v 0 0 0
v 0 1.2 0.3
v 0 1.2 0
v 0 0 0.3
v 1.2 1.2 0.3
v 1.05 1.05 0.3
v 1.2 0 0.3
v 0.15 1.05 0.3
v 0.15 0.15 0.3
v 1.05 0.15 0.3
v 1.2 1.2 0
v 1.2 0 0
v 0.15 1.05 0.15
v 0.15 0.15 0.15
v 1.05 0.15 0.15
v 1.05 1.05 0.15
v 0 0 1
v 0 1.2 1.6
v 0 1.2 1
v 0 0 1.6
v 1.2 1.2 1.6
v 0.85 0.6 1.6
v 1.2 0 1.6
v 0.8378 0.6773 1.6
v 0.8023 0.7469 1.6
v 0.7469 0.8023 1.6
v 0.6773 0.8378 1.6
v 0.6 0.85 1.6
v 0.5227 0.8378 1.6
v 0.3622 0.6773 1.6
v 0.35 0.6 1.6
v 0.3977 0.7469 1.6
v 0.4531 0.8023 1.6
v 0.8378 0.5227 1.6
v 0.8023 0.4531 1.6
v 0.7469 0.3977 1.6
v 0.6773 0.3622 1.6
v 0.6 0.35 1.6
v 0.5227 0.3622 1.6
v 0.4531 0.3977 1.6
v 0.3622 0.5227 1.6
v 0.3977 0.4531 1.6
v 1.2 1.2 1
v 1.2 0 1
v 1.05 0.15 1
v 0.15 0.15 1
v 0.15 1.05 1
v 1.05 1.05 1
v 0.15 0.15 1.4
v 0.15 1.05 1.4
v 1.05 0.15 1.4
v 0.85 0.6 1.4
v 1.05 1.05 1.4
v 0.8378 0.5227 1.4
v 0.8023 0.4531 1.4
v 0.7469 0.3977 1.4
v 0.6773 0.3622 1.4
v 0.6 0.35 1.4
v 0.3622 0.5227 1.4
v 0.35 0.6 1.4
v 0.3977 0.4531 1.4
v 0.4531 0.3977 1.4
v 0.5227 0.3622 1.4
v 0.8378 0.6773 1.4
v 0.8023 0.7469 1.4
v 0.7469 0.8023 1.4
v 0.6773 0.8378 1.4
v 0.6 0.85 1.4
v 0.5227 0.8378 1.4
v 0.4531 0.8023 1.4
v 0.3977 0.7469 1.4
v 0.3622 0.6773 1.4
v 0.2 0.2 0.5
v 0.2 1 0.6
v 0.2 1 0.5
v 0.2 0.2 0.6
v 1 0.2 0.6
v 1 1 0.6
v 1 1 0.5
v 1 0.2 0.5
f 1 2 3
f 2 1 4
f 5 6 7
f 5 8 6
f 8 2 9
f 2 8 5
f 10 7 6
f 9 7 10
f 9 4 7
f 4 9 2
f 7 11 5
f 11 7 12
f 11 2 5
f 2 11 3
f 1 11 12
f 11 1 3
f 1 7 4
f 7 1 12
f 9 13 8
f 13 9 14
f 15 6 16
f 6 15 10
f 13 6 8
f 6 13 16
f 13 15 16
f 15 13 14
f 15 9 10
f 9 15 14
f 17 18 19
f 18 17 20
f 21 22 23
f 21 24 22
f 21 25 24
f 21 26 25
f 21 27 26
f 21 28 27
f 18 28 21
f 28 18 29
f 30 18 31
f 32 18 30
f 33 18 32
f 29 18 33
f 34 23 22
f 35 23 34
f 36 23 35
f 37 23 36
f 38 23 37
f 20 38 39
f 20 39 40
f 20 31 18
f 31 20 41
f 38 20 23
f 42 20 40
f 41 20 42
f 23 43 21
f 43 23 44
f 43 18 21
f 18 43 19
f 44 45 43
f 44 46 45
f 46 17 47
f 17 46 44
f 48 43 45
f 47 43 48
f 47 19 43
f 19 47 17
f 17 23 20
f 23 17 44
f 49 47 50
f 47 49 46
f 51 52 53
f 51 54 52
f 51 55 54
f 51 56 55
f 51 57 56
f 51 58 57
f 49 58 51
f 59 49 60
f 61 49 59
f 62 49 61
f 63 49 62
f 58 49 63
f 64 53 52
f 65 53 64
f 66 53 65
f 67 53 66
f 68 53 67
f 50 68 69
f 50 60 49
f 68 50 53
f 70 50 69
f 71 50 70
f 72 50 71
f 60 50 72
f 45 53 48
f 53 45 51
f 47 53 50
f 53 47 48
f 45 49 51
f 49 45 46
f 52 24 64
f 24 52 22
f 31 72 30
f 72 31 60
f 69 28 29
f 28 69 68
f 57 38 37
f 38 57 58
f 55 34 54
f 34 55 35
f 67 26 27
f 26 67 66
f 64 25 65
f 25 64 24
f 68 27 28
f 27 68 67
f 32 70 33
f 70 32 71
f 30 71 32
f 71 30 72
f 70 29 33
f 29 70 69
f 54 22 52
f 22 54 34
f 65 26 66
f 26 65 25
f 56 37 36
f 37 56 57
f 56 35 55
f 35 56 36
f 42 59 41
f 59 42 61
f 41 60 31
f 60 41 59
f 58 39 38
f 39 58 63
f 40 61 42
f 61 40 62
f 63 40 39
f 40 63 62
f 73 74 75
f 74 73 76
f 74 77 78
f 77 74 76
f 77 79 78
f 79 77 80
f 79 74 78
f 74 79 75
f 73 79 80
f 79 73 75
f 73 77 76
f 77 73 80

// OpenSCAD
// Device
module draw_LIS3DH() {
    color([0.0, 1.0, 0.0, 1.0]) {
        cube([0.8, 0.8, 0.1]);
    }
}

// Bottom
module bottom() {
    color ([0.0, 0.0, 1.0, 1.0]) {
        difference() {
            cube([1.2, 1.2, 0.3]);
            translate([0.15, 0.15, 0.15]) cube([0.9, 0.9, 0.15]);
        }
    }
}

// Top
module top() {
    color([1.0, 0.0, 0.0, 1.0]) {
        difference() {
            cube([1.2, 1.2, 0.6]);
            translate([0.15, 0.15, 0]) cube([0.9, 0.9, 0.4]);
            translate([0.6, 0.6, 0.0]) cylinder(h = .7, d = 0.5, $fn = 20);
        }
    }
}

BUILD = 0;
TOGETHER = 1;
PRINT = 2;

STATE = BUILD;

if (STATE == BUILD) {
    translate([0.2, 0.2, 0.5]) draw_LIS3DH();
    bottom();
    translate([0, 0, 1]) top();
}

if (STATE == TOGETHER) {
    bottom();
    translate([0, 0, .3]) top();
}

if (STATE == PRINT) {
    bottom();
    translate([0, -1.2, 0.6]) rotate([0, 180, 0]) top();
}
